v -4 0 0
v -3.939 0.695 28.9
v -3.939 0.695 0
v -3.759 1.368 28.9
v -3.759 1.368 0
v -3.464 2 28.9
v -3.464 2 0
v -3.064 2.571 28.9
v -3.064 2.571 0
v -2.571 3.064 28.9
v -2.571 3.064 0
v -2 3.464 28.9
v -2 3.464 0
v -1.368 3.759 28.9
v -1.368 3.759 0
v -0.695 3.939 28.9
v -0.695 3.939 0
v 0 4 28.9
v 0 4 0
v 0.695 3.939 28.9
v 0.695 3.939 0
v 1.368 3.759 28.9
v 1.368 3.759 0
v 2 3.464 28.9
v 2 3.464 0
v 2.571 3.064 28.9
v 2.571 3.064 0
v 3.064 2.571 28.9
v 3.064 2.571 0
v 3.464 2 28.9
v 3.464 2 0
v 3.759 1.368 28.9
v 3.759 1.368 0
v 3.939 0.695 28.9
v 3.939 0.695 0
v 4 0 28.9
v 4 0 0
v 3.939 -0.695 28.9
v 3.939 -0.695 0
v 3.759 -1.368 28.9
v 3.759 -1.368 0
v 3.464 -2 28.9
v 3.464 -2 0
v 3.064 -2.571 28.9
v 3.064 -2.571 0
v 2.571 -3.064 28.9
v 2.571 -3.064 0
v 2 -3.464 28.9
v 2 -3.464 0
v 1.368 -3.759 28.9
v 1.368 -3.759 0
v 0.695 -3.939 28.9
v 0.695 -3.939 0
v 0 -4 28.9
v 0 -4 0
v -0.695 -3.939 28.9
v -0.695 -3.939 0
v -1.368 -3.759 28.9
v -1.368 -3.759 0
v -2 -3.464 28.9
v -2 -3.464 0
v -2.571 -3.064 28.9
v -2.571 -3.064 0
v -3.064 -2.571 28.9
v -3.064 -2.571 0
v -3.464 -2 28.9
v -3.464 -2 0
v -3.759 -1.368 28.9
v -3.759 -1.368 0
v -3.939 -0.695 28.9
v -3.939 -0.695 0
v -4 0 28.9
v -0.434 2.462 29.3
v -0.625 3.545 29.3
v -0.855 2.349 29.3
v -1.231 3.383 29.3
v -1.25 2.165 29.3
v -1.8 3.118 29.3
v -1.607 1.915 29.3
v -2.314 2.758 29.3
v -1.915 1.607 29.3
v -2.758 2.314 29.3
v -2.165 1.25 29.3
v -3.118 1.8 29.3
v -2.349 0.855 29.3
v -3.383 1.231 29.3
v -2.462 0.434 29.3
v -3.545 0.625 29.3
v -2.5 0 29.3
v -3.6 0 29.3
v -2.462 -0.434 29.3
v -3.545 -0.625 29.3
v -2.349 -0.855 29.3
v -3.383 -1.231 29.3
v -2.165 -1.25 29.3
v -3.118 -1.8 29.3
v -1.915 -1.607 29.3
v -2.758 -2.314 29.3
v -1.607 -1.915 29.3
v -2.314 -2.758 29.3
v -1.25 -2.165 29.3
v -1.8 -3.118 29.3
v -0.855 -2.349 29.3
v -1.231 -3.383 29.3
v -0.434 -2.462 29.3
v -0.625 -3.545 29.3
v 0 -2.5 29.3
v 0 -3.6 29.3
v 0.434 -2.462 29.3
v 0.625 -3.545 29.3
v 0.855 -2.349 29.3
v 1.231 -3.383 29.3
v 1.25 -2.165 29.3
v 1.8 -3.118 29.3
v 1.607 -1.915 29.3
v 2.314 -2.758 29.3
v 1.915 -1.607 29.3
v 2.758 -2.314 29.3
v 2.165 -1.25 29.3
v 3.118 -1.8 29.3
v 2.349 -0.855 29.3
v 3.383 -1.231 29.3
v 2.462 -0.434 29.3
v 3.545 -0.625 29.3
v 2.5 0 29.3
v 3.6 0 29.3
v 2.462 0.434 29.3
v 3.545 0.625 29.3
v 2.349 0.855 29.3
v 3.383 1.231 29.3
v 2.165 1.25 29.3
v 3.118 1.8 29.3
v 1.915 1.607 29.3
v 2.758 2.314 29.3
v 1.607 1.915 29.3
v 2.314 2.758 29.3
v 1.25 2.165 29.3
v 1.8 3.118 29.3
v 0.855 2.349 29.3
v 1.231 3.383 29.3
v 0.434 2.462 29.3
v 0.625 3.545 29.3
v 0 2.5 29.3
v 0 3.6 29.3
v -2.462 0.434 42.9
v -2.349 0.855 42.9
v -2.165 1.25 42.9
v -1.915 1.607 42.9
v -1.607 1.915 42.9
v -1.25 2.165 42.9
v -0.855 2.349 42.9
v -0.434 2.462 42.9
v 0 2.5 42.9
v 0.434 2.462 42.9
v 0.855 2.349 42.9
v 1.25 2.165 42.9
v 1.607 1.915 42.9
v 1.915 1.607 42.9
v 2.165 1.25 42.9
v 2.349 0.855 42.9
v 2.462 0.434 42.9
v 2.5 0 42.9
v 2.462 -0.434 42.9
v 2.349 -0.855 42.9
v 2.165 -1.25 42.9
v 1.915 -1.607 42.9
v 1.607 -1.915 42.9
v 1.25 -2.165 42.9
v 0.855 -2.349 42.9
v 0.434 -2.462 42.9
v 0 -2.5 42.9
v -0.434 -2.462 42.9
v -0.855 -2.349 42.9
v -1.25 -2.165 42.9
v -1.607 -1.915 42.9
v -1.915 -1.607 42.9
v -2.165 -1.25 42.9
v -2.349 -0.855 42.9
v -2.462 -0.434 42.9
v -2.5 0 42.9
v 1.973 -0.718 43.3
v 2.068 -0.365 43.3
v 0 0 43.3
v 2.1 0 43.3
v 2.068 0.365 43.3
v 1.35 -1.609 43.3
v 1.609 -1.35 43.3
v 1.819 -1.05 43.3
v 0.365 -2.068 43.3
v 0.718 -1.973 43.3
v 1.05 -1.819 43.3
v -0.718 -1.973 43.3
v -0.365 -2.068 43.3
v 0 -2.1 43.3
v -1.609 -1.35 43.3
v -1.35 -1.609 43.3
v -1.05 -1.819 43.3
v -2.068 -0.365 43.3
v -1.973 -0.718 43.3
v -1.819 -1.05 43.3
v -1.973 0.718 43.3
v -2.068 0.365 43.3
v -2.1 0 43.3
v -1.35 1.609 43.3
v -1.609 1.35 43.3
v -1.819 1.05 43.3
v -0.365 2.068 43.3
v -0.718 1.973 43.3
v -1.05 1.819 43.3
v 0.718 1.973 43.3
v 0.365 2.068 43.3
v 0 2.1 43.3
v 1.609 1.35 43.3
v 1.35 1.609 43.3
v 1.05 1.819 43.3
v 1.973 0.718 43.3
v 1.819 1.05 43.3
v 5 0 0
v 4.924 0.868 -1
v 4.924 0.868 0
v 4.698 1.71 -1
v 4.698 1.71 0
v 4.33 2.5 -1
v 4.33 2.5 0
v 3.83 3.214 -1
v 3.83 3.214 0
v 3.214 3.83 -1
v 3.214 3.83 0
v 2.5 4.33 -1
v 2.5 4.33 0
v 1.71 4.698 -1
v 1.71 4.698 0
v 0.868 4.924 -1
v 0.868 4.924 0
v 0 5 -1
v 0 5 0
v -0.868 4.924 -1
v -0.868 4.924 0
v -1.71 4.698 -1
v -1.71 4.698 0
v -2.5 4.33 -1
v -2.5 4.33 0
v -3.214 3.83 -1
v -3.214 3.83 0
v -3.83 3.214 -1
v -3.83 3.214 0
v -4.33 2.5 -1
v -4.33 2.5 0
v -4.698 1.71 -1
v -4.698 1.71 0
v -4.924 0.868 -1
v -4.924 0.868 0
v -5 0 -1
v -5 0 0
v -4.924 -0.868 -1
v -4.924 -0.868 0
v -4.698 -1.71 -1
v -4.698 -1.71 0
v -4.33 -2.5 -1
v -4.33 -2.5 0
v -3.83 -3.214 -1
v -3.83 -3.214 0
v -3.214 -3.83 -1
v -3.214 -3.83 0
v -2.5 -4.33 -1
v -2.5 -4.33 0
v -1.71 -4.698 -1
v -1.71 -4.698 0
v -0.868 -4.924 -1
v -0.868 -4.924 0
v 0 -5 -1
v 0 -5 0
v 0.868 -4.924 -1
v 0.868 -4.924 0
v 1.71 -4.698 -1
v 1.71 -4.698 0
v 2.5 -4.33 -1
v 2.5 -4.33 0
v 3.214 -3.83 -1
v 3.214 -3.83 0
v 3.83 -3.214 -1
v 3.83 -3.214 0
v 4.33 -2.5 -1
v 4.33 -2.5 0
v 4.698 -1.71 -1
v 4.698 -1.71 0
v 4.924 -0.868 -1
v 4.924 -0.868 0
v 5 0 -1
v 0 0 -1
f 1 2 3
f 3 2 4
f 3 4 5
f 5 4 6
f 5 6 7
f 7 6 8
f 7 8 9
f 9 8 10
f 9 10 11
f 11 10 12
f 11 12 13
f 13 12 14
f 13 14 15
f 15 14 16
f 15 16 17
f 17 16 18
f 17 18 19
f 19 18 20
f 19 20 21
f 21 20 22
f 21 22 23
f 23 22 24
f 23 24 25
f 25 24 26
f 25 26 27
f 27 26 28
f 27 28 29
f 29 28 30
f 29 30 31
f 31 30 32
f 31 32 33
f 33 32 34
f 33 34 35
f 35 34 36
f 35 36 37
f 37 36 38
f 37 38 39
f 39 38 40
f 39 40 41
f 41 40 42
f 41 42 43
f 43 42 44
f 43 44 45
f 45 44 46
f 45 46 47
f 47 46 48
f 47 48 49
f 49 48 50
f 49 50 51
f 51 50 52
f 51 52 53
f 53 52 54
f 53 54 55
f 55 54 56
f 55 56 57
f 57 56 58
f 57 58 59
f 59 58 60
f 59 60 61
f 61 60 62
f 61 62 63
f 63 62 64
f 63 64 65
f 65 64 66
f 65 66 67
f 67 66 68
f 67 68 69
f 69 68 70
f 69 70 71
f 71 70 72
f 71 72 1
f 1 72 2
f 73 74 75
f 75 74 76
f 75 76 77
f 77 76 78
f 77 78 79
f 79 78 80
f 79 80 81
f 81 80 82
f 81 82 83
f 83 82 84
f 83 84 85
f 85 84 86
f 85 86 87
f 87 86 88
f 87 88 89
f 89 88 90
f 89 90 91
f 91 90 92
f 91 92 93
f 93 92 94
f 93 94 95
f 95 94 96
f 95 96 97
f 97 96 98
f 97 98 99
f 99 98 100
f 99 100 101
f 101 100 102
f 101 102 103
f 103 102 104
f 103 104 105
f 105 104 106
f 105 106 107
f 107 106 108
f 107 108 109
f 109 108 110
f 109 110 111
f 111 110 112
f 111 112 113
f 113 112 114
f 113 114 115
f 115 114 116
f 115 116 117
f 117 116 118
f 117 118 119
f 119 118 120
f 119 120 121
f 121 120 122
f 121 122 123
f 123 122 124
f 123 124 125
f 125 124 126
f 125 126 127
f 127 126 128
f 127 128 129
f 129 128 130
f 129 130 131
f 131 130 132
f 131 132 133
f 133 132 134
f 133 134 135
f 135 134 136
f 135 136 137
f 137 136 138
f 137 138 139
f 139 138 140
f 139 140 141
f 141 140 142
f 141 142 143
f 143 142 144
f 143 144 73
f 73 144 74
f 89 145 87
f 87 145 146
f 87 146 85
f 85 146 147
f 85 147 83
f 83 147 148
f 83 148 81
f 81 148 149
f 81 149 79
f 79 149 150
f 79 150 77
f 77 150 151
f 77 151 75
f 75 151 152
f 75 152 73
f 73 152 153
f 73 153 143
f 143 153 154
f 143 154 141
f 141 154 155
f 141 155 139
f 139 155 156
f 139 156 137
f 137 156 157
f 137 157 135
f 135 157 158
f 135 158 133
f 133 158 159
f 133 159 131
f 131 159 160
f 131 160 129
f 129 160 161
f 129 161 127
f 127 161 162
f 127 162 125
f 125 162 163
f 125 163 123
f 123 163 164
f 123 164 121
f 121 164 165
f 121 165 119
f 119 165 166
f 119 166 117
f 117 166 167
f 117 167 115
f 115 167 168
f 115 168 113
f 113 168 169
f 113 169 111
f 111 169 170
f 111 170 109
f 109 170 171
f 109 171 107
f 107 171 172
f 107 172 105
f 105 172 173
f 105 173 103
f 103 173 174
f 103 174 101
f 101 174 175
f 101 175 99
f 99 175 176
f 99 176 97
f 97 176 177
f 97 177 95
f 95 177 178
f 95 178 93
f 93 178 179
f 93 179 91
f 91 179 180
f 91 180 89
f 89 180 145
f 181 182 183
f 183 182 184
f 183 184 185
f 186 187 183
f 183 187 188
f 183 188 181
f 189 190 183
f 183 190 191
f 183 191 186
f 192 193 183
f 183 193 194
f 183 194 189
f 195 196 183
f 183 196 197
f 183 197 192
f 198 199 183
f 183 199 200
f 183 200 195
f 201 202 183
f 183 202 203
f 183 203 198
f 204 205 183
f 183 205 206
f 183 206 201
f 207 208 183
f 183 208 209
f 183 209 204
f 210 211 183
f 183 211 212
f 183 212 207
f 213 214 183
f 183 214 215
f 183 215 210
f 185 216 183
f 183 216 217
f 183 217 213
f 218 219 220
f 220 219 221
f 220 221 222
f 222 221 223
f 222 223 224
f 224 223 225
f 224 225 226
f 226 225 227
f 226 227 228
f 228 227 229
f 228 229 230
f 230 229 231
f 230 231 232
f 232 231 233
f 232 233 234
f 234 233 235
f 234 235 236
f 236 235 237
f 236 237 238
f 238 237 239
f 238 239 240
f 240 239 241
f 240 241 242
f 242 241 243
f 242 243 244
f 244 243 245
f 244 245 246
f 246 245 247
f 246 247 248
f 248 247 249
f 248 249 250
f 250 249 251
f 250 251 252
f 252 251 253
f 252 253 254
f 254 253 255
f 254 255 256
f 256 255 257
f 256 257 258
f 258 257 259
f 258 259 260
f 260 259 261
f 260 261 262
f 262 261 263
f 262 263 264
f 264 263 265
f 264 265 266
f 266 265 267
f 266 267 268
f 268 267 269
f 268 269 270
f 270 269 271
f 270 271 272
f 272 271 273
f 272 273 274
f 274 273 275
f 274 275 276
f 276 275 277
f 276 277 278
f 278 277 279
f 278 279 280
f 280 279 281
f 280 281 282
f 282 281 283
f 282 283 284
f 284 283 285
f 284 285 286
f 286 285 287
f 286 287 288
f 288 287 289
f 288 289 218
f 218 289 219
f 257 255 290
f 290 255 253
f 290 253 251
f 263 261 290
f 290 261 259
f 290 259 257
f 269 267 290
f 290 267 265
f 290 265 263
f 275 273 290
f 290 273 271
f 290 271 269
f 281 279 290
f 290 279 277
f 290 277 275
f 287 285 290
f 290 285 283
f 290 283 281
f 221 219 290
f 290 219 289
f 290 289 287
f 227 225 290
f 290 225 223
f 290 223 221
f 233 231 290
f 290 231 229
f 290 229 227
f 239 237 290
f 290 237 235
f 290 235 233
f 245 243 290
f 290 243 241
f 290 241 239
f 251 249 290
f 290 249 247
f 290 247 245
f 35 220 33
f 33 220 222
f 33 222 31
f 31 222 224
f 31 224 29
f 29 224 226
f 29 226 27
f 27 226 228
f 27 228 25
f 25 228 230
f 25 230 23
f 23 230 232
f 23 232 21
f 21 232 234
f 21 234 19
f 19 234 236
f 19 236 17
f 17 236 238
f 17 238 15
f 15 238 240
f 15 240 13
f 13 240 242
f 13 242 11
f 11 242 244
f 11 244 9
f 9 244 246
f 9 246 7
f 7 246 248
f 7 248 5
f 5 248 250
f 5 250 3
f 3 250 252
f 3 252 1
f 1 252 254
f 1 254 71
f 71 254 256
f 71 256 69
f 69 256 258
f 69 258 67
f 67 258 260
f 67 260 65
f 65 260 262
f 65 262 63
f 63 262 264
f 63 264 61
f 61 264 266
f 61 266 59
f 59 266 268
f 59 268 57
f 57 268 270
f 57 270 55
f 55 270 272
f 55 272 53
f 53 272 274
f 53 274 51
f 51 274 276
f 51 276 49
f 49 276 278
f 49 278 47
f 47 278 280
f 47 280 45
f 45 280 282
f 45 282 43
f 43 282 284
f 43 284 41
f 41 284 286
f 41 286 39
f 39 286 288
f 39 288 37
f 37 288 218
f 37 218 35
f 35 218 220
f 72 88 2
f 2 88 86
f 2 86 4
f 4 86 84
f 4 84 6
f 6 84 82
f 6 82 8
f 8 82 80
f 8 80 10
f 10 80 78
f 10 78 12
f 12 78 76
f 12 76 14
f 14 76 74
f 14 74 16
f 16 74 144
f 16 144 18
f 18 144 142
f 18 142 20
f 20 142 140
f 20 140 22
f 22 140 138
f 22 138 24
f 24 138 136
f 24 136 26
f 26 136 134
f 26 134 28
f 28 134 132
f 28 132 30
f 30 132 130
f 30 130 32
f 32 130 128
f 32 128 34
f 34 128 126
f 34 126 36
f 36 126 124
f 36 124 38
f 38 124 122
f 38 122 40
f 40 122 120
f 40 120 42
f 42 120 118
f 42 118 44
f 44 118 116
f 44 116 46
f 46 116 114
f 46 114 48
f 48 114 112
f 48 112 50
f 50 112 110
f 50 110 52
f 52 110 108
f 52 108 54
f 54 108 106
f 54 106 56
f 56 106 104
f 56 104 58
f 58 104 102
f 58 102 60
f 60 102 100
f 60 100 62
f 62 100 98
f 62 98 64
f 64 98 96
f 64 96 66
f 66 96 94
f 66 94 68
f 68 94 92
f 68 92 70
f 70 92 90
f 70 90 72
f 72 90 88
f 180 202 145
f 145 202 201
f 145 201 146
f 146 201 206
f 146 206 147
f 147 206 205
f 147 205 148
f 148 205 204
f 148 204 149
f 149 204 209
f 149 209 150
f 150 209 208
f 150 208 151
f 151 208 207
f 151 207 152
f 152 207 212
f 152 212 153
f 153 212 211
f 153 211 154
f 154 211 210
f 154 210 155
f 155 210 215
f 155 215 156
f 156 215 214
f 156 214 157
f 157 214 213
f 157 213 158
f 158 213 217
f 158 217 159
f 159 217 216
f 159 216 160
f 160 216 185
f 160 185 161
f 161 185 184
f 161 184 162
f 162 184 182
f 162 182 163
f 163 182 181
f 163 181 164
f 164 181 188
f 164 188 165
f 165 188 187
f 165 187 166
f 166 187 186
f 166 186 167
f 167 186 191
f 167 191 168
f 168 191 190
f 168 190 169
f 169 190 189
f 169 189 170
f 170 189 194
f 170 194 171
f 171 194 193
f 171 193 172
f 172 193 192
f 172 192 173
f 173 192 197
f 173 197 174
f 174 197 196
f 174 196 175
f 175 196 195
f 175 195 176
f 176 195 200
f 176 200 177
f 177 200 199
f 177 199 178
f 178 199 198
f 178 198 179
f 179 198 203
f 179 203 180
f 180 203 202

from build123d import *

# Parameters (mm, degrees)
SKETCH1_R           = 4
BOSS_EXTRUDE1_DEPTH = 29.3
SKETCH5_R           = 2.5
BOSS_EXTRUDE4_DEPTH = 14
SKETCH6_R           = 5
BOSS_EXTRUDE5_DEPTH = 1
CHAMFER1_SIZE       = 0.4


with BuildPart() as part:
    # Sketch1 → Boss-Extrude1 (new body)
    with BuildSketch(Plane.XY):
        Circle(SKETCH1_R)
    extrude(amount=BOSS_EXTRUDE1_DEPTH)

    # Sketch5 → Boss-Extrude4 (add)
    with BuildSketch(Plane.XY.offset(29.3)):
        Circle(SKETCH5_R)
    extrude(amount=BOSS_EXTRUDE4_DEPTH)

    # Sketch6 → Boss-Extrude5 (add)
    with BuildSketch(Plane(origin=(0, 0, 0), x_dir=(-1, 0, 0), z_dir=(0, 0, -1))):
        Circle(SKETCH6_R)
    extrude(amount=BOSS_EXTRUDE5_DEPTH)

    # Chamfer1
    chamfer1_edges = [part.edges().sort_by_distance(p)[0] for p in [
        (-4, 0, 29.3),
        (-2.5, 0, 43.3),
    ]]
    chamfer(chamfer1_edges, length=CHAMFER1_SIZE)


solid = part.part
